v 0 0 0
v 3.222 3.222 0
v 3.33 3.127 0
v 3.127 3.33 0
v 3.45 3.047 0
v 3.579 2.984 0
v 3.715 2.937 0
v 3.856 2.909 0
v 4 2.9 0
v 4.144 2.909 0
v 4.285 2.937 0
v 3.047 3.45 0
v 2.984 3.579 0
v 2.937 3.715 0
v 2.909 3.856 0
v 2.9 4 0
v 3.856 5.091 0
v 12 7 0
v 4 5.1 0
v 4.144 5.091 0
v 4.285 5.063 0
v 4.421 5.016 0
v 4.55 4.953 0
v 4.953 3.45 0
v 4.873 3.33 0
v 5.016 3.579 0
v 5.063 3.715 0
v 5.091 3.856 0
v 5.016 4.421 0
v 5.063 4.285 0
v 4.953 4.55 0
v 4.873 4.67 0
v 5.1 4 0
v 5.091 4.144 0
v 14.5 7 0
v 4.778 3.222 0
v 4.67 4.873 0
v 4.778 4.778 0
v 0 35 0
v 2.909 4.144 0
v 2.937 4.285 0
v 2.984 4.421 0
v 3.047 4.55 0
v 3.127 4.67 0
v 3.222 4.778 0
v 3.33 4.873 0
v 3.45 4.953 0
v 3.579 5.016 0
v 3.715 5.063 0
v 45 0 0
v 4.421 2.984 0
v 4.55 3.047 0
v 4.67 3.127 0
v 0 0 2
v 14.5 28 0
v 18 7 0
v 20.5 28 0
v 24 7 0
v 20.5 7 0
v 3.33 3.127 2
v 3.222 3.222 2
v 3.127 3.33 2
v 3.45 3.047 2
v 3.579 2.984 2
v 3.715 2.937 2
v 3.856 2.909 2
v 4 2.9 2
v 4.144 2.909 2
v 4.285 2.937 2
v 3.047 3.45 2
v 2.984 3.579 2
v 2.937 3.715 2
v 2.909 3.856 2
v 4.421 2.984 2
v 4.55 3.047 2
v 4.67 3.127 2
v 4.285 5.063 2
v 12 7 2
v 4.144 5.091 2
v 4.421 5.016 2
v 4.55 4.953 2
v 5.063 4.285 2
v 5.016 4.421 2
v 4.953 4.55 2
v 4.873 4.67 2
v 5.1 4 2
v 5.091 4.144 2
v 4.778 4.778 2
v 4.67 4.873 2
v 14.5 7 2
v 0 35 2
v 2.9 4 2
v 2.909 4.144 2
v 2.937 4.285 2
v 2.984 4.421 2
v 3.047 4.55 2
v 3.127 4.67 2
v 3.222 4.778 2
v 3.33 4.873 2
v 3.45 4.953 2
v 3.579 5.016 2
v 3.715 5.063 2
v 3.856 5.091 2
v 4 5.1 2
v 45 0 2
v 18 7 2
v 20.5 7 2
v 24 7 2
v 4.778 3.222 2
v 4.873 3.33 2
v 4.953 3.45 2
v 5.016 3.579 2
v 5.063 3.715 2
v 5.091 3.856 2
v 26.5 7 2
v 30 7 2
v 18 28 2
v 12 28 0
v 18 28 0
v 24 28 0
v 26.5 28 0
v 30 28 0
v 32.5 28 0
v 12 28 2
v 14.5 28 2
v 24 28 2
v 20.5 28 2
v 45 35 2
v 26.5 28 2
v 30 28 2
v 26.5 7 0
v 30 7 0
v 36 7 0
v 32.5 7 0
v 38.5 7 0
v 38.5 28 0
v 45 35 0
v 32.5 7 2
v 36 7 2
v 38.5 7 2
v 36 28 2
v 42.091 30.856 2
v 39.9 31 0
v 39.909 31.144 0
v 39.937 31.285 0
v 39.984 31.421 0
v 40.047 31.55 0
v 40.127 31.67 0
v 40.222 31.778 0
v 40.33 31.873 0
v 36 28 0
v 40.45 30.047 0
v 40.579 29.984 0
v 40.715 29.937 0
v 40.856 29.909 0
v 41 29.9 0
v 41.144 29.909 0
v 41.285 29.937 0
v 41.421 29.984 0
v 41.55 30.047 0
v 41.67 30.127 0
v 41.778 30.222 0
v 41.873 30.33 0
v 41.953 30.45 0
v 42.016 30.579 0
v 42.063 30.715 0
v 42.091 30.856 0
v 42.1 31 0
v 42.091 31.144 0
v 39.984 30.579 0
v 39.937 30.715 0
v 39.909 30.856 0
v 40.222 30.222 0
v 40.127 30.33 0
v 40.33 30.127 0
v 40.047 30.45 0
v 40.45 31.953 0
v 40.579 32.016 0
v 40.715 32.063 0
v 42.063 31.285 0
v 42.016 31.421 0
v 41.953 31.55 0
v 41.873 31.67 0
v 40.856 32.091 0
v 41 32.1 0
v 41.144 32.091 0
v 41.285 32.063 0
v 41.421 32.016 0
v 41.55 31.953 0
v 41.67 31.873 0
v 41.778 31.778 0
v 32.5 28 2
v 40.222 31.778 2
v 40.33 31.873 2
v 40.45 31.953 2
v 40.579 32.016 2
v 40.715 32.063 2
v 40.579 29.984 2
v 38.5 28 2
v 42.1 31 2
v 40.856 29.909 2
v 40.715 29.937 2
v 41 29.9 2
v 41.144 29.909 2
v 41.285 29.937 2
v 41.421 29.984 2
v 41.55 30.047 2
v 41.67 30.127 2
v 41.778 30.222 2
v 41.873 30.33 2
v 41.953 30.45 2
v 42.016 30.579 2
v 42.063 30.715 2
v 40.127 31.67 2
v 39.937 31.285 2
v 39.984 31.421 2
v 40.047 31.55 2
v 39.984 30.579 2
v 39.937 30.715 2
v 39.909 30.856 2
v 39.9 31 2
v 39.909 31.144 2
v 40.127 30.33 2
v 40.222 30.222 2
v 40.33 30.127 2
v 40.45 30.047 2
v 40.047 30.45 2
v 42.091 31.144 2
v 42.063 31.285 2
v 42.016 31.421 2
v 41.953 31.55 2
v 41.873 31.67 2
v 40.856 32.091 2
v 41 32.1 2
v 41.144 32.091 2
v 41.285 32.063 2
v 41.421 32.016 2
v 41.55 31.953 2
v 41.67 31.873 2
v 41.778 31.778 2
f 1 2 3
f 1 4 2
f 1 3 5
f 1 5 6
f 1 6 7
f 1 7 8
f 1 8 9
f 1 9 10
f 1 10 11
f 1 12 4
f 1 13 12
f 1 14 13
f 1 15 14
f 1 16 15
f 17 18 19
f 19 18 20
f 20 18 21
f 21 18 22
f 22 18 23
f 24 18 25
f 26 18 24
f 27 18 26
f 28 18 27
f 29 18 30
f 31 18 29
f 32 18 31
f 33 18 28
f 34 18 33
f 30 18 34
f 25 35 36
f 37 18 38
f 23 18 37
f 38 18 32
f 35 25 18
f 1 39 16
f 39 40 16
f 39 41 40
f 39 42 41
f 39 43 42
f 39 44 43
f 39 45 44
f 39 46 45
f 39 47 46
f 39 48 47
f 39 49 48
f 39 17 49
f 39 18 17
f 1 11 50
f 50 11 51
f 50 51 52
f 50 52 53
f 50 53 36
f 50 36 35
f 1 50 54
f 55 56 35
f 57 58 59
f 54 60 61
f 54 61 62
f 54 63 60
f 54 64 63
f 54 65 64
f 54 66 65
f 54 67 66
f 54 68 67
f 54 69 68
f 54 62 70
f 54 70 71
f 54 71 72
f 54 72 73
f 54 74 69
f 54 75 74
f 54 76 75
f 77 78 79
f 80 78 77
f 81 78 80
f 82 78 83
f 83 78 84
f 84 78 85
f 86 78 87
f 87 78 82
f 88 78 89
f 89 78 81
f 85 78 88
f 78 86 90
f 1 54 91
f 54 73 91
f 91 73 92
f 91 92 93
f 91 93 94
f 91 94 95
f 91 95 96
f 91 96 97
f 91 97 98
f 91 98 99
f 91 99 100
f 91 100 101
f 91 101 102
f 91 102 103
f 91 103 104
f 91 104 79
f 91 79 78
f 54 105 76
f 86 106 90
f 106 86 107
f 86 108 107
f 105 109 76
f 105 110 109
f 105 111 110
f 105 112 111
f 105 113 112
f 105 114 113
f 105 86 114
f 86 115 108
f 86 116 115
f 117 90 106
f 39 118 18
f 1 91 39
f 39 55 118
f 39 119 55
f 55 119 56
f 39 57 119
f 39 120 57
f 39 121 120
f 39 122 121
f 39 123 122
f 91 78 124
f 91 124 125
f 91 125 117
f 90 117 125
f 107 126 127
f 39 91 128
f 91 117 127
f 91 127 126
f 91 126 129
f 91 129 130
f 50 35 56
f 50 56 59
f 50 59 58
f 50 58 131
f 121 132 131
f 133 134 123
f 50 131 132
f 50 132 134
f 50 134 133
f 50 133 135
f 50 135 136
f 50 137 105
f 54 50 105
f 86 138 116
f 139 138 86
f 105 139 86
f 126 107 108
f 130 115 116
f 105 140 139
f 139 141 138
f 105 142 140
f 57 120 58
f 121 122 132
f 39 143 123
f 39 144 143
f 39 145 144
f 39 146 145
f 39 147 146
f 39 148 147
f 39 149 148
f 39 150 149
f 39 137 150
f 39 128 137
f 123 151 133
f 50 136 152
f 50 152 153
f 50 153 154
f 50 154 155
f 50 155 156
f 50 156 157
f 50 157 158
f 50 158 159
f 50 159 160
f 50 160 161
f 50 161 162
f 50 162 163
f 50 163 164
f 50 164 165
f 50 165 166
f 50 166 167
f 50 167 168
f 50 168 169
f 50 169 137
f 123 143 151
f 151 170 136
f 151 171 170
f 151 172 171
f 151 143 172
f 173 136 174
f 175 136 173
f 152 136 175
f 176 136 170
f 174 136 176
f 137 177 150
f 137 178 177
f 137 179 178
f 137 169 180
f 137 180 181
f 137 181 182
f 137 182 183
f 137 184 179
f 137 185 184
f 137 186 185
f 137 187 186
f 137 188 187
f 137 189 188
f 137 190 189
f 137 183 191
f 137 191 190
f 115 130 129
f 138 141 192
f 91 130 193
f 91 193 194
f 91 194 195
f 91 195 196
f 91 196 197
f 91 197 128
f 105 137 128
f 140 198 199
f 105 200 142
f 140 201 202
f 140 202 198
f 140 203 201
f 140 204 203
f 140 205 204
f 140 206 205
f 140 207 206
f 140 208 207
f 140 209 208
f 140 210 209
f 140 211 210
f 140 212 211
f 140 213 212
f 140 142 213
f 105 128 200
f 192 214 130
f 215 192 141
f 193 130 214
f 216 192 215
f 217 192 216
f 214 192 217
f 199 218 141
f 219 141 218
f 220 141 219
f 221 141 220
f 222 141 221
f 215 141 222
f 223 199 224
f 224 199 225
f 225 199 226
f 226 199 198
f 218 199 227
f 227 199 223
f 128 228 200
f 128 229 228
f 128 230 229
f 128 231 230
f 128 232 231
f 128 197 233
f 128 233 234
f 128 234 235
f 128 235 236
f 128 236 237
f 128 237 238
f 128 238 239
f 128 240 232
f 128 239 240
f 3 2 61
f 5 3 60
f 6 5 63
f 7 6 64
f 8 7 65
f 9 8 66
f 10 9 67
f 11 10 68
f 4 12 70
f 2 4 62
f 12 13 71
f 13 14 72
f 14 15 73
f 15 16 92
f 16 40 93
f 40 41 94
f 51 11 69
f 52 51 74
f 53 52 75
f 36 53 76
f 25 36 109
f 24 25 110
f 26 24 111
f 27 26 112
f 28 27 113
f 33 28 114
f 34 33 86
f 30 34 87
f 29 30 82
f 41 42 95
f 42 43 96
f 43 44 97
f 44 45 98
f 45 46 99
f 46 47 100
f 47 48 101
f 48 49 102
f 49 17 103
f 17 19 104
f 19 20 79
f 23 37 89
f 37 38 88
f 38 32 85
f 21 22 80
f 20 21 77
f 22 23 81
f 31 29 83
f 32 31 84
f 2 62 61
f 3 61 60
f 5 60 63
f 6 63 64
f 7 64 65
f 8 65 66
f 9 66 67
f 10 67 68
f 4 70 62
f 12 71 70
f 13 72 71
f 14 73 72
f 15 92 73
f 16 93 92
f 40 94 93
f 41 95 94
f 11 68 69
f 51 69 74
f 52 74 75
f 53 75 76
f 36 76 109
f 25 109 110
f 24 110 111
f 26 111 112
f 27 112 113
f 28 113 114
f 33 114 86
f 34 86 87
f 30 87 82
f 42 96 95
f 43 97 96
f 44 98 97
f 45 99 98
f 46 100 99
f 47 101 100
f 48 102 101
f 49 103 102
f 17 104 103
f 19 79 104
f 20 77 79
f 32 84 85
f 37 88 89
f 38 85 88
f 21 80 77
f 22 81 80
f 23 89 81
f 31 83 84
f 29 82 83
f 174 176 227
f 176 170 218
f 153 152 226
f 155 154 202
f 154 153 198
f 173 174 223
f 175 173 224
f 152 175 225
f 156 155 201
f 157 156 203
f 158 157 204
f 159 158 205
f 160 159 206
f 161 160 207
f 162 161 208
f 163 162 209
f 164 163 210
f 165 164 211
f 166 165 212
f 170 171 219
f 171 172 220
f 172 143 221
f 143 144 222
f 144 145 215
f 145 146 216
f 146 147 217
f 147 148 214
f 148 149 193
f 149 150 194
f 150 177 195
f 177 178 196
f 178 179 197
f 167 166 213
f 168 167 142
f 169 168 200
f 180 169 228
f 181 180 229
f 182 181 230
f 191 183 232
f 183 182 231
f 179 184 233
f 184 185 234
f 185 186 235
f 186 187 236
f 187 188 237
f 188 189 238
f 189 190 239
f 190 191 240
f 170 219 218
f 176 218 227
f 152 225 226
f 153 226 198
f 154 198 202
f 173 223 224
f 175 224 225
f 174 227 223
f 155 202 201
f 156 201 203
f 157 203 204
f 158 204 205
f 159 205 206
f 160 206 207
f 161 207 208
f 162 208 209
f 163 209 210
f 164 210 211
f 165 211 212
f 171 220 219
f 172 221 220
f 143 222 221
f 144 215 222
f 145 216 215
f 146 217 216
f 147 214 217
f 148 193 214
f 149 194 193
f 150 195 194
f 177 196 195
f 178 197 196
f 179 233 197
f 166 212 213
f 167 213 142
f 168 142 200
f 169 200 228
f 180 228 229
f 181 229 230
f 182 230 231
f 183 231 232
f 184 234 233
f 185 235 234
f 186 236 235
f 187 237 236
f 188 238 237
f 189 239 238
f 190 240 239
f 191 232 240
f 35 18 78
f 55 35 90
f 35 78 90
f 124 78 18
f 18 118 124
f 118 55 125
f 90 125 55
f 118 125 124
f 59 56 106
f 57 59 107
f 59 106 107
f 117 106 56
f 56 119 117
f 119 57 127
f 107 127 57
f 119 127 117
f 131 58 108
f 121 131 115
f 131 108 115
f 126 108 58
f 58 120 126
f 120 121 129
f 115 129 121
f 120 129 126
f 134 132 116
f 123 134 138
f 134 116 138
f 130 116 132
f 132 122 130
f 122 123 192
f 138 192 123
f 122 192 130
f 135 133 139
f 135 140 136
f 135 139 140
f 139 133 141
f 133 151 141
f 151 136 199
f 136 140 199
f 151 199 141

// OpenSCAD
// Generated FH1 print part; mm. See parameters.json and physical-fit limits.
difference() {
difference() {
difference() {
difference() {
difference() {
difference() {
cube([45,35,2]);
translate([4, 4, -0.1]) { cylinder(d=2.2,h=2.2,$fn=48); }
translate([41, 31, -0.1]) { cylinder(d=2.2,h=2.2,$fn=48); }
}
translate([12, 7, -0.1]) { cube([2.5,21,2.2]); }
}
translate([18, 7, -0.1]) { cube([2.5,21,2.2]); }
}
translate([24, 7, -0.1]) { cube([2.5,21,2.2]); }
}
translate([30, 7, -0.1]) { cube([2.5,21,2.2]); }
}
translate([36, 7, -0.1]) { cube([2.5,21,2.2]); }
}
